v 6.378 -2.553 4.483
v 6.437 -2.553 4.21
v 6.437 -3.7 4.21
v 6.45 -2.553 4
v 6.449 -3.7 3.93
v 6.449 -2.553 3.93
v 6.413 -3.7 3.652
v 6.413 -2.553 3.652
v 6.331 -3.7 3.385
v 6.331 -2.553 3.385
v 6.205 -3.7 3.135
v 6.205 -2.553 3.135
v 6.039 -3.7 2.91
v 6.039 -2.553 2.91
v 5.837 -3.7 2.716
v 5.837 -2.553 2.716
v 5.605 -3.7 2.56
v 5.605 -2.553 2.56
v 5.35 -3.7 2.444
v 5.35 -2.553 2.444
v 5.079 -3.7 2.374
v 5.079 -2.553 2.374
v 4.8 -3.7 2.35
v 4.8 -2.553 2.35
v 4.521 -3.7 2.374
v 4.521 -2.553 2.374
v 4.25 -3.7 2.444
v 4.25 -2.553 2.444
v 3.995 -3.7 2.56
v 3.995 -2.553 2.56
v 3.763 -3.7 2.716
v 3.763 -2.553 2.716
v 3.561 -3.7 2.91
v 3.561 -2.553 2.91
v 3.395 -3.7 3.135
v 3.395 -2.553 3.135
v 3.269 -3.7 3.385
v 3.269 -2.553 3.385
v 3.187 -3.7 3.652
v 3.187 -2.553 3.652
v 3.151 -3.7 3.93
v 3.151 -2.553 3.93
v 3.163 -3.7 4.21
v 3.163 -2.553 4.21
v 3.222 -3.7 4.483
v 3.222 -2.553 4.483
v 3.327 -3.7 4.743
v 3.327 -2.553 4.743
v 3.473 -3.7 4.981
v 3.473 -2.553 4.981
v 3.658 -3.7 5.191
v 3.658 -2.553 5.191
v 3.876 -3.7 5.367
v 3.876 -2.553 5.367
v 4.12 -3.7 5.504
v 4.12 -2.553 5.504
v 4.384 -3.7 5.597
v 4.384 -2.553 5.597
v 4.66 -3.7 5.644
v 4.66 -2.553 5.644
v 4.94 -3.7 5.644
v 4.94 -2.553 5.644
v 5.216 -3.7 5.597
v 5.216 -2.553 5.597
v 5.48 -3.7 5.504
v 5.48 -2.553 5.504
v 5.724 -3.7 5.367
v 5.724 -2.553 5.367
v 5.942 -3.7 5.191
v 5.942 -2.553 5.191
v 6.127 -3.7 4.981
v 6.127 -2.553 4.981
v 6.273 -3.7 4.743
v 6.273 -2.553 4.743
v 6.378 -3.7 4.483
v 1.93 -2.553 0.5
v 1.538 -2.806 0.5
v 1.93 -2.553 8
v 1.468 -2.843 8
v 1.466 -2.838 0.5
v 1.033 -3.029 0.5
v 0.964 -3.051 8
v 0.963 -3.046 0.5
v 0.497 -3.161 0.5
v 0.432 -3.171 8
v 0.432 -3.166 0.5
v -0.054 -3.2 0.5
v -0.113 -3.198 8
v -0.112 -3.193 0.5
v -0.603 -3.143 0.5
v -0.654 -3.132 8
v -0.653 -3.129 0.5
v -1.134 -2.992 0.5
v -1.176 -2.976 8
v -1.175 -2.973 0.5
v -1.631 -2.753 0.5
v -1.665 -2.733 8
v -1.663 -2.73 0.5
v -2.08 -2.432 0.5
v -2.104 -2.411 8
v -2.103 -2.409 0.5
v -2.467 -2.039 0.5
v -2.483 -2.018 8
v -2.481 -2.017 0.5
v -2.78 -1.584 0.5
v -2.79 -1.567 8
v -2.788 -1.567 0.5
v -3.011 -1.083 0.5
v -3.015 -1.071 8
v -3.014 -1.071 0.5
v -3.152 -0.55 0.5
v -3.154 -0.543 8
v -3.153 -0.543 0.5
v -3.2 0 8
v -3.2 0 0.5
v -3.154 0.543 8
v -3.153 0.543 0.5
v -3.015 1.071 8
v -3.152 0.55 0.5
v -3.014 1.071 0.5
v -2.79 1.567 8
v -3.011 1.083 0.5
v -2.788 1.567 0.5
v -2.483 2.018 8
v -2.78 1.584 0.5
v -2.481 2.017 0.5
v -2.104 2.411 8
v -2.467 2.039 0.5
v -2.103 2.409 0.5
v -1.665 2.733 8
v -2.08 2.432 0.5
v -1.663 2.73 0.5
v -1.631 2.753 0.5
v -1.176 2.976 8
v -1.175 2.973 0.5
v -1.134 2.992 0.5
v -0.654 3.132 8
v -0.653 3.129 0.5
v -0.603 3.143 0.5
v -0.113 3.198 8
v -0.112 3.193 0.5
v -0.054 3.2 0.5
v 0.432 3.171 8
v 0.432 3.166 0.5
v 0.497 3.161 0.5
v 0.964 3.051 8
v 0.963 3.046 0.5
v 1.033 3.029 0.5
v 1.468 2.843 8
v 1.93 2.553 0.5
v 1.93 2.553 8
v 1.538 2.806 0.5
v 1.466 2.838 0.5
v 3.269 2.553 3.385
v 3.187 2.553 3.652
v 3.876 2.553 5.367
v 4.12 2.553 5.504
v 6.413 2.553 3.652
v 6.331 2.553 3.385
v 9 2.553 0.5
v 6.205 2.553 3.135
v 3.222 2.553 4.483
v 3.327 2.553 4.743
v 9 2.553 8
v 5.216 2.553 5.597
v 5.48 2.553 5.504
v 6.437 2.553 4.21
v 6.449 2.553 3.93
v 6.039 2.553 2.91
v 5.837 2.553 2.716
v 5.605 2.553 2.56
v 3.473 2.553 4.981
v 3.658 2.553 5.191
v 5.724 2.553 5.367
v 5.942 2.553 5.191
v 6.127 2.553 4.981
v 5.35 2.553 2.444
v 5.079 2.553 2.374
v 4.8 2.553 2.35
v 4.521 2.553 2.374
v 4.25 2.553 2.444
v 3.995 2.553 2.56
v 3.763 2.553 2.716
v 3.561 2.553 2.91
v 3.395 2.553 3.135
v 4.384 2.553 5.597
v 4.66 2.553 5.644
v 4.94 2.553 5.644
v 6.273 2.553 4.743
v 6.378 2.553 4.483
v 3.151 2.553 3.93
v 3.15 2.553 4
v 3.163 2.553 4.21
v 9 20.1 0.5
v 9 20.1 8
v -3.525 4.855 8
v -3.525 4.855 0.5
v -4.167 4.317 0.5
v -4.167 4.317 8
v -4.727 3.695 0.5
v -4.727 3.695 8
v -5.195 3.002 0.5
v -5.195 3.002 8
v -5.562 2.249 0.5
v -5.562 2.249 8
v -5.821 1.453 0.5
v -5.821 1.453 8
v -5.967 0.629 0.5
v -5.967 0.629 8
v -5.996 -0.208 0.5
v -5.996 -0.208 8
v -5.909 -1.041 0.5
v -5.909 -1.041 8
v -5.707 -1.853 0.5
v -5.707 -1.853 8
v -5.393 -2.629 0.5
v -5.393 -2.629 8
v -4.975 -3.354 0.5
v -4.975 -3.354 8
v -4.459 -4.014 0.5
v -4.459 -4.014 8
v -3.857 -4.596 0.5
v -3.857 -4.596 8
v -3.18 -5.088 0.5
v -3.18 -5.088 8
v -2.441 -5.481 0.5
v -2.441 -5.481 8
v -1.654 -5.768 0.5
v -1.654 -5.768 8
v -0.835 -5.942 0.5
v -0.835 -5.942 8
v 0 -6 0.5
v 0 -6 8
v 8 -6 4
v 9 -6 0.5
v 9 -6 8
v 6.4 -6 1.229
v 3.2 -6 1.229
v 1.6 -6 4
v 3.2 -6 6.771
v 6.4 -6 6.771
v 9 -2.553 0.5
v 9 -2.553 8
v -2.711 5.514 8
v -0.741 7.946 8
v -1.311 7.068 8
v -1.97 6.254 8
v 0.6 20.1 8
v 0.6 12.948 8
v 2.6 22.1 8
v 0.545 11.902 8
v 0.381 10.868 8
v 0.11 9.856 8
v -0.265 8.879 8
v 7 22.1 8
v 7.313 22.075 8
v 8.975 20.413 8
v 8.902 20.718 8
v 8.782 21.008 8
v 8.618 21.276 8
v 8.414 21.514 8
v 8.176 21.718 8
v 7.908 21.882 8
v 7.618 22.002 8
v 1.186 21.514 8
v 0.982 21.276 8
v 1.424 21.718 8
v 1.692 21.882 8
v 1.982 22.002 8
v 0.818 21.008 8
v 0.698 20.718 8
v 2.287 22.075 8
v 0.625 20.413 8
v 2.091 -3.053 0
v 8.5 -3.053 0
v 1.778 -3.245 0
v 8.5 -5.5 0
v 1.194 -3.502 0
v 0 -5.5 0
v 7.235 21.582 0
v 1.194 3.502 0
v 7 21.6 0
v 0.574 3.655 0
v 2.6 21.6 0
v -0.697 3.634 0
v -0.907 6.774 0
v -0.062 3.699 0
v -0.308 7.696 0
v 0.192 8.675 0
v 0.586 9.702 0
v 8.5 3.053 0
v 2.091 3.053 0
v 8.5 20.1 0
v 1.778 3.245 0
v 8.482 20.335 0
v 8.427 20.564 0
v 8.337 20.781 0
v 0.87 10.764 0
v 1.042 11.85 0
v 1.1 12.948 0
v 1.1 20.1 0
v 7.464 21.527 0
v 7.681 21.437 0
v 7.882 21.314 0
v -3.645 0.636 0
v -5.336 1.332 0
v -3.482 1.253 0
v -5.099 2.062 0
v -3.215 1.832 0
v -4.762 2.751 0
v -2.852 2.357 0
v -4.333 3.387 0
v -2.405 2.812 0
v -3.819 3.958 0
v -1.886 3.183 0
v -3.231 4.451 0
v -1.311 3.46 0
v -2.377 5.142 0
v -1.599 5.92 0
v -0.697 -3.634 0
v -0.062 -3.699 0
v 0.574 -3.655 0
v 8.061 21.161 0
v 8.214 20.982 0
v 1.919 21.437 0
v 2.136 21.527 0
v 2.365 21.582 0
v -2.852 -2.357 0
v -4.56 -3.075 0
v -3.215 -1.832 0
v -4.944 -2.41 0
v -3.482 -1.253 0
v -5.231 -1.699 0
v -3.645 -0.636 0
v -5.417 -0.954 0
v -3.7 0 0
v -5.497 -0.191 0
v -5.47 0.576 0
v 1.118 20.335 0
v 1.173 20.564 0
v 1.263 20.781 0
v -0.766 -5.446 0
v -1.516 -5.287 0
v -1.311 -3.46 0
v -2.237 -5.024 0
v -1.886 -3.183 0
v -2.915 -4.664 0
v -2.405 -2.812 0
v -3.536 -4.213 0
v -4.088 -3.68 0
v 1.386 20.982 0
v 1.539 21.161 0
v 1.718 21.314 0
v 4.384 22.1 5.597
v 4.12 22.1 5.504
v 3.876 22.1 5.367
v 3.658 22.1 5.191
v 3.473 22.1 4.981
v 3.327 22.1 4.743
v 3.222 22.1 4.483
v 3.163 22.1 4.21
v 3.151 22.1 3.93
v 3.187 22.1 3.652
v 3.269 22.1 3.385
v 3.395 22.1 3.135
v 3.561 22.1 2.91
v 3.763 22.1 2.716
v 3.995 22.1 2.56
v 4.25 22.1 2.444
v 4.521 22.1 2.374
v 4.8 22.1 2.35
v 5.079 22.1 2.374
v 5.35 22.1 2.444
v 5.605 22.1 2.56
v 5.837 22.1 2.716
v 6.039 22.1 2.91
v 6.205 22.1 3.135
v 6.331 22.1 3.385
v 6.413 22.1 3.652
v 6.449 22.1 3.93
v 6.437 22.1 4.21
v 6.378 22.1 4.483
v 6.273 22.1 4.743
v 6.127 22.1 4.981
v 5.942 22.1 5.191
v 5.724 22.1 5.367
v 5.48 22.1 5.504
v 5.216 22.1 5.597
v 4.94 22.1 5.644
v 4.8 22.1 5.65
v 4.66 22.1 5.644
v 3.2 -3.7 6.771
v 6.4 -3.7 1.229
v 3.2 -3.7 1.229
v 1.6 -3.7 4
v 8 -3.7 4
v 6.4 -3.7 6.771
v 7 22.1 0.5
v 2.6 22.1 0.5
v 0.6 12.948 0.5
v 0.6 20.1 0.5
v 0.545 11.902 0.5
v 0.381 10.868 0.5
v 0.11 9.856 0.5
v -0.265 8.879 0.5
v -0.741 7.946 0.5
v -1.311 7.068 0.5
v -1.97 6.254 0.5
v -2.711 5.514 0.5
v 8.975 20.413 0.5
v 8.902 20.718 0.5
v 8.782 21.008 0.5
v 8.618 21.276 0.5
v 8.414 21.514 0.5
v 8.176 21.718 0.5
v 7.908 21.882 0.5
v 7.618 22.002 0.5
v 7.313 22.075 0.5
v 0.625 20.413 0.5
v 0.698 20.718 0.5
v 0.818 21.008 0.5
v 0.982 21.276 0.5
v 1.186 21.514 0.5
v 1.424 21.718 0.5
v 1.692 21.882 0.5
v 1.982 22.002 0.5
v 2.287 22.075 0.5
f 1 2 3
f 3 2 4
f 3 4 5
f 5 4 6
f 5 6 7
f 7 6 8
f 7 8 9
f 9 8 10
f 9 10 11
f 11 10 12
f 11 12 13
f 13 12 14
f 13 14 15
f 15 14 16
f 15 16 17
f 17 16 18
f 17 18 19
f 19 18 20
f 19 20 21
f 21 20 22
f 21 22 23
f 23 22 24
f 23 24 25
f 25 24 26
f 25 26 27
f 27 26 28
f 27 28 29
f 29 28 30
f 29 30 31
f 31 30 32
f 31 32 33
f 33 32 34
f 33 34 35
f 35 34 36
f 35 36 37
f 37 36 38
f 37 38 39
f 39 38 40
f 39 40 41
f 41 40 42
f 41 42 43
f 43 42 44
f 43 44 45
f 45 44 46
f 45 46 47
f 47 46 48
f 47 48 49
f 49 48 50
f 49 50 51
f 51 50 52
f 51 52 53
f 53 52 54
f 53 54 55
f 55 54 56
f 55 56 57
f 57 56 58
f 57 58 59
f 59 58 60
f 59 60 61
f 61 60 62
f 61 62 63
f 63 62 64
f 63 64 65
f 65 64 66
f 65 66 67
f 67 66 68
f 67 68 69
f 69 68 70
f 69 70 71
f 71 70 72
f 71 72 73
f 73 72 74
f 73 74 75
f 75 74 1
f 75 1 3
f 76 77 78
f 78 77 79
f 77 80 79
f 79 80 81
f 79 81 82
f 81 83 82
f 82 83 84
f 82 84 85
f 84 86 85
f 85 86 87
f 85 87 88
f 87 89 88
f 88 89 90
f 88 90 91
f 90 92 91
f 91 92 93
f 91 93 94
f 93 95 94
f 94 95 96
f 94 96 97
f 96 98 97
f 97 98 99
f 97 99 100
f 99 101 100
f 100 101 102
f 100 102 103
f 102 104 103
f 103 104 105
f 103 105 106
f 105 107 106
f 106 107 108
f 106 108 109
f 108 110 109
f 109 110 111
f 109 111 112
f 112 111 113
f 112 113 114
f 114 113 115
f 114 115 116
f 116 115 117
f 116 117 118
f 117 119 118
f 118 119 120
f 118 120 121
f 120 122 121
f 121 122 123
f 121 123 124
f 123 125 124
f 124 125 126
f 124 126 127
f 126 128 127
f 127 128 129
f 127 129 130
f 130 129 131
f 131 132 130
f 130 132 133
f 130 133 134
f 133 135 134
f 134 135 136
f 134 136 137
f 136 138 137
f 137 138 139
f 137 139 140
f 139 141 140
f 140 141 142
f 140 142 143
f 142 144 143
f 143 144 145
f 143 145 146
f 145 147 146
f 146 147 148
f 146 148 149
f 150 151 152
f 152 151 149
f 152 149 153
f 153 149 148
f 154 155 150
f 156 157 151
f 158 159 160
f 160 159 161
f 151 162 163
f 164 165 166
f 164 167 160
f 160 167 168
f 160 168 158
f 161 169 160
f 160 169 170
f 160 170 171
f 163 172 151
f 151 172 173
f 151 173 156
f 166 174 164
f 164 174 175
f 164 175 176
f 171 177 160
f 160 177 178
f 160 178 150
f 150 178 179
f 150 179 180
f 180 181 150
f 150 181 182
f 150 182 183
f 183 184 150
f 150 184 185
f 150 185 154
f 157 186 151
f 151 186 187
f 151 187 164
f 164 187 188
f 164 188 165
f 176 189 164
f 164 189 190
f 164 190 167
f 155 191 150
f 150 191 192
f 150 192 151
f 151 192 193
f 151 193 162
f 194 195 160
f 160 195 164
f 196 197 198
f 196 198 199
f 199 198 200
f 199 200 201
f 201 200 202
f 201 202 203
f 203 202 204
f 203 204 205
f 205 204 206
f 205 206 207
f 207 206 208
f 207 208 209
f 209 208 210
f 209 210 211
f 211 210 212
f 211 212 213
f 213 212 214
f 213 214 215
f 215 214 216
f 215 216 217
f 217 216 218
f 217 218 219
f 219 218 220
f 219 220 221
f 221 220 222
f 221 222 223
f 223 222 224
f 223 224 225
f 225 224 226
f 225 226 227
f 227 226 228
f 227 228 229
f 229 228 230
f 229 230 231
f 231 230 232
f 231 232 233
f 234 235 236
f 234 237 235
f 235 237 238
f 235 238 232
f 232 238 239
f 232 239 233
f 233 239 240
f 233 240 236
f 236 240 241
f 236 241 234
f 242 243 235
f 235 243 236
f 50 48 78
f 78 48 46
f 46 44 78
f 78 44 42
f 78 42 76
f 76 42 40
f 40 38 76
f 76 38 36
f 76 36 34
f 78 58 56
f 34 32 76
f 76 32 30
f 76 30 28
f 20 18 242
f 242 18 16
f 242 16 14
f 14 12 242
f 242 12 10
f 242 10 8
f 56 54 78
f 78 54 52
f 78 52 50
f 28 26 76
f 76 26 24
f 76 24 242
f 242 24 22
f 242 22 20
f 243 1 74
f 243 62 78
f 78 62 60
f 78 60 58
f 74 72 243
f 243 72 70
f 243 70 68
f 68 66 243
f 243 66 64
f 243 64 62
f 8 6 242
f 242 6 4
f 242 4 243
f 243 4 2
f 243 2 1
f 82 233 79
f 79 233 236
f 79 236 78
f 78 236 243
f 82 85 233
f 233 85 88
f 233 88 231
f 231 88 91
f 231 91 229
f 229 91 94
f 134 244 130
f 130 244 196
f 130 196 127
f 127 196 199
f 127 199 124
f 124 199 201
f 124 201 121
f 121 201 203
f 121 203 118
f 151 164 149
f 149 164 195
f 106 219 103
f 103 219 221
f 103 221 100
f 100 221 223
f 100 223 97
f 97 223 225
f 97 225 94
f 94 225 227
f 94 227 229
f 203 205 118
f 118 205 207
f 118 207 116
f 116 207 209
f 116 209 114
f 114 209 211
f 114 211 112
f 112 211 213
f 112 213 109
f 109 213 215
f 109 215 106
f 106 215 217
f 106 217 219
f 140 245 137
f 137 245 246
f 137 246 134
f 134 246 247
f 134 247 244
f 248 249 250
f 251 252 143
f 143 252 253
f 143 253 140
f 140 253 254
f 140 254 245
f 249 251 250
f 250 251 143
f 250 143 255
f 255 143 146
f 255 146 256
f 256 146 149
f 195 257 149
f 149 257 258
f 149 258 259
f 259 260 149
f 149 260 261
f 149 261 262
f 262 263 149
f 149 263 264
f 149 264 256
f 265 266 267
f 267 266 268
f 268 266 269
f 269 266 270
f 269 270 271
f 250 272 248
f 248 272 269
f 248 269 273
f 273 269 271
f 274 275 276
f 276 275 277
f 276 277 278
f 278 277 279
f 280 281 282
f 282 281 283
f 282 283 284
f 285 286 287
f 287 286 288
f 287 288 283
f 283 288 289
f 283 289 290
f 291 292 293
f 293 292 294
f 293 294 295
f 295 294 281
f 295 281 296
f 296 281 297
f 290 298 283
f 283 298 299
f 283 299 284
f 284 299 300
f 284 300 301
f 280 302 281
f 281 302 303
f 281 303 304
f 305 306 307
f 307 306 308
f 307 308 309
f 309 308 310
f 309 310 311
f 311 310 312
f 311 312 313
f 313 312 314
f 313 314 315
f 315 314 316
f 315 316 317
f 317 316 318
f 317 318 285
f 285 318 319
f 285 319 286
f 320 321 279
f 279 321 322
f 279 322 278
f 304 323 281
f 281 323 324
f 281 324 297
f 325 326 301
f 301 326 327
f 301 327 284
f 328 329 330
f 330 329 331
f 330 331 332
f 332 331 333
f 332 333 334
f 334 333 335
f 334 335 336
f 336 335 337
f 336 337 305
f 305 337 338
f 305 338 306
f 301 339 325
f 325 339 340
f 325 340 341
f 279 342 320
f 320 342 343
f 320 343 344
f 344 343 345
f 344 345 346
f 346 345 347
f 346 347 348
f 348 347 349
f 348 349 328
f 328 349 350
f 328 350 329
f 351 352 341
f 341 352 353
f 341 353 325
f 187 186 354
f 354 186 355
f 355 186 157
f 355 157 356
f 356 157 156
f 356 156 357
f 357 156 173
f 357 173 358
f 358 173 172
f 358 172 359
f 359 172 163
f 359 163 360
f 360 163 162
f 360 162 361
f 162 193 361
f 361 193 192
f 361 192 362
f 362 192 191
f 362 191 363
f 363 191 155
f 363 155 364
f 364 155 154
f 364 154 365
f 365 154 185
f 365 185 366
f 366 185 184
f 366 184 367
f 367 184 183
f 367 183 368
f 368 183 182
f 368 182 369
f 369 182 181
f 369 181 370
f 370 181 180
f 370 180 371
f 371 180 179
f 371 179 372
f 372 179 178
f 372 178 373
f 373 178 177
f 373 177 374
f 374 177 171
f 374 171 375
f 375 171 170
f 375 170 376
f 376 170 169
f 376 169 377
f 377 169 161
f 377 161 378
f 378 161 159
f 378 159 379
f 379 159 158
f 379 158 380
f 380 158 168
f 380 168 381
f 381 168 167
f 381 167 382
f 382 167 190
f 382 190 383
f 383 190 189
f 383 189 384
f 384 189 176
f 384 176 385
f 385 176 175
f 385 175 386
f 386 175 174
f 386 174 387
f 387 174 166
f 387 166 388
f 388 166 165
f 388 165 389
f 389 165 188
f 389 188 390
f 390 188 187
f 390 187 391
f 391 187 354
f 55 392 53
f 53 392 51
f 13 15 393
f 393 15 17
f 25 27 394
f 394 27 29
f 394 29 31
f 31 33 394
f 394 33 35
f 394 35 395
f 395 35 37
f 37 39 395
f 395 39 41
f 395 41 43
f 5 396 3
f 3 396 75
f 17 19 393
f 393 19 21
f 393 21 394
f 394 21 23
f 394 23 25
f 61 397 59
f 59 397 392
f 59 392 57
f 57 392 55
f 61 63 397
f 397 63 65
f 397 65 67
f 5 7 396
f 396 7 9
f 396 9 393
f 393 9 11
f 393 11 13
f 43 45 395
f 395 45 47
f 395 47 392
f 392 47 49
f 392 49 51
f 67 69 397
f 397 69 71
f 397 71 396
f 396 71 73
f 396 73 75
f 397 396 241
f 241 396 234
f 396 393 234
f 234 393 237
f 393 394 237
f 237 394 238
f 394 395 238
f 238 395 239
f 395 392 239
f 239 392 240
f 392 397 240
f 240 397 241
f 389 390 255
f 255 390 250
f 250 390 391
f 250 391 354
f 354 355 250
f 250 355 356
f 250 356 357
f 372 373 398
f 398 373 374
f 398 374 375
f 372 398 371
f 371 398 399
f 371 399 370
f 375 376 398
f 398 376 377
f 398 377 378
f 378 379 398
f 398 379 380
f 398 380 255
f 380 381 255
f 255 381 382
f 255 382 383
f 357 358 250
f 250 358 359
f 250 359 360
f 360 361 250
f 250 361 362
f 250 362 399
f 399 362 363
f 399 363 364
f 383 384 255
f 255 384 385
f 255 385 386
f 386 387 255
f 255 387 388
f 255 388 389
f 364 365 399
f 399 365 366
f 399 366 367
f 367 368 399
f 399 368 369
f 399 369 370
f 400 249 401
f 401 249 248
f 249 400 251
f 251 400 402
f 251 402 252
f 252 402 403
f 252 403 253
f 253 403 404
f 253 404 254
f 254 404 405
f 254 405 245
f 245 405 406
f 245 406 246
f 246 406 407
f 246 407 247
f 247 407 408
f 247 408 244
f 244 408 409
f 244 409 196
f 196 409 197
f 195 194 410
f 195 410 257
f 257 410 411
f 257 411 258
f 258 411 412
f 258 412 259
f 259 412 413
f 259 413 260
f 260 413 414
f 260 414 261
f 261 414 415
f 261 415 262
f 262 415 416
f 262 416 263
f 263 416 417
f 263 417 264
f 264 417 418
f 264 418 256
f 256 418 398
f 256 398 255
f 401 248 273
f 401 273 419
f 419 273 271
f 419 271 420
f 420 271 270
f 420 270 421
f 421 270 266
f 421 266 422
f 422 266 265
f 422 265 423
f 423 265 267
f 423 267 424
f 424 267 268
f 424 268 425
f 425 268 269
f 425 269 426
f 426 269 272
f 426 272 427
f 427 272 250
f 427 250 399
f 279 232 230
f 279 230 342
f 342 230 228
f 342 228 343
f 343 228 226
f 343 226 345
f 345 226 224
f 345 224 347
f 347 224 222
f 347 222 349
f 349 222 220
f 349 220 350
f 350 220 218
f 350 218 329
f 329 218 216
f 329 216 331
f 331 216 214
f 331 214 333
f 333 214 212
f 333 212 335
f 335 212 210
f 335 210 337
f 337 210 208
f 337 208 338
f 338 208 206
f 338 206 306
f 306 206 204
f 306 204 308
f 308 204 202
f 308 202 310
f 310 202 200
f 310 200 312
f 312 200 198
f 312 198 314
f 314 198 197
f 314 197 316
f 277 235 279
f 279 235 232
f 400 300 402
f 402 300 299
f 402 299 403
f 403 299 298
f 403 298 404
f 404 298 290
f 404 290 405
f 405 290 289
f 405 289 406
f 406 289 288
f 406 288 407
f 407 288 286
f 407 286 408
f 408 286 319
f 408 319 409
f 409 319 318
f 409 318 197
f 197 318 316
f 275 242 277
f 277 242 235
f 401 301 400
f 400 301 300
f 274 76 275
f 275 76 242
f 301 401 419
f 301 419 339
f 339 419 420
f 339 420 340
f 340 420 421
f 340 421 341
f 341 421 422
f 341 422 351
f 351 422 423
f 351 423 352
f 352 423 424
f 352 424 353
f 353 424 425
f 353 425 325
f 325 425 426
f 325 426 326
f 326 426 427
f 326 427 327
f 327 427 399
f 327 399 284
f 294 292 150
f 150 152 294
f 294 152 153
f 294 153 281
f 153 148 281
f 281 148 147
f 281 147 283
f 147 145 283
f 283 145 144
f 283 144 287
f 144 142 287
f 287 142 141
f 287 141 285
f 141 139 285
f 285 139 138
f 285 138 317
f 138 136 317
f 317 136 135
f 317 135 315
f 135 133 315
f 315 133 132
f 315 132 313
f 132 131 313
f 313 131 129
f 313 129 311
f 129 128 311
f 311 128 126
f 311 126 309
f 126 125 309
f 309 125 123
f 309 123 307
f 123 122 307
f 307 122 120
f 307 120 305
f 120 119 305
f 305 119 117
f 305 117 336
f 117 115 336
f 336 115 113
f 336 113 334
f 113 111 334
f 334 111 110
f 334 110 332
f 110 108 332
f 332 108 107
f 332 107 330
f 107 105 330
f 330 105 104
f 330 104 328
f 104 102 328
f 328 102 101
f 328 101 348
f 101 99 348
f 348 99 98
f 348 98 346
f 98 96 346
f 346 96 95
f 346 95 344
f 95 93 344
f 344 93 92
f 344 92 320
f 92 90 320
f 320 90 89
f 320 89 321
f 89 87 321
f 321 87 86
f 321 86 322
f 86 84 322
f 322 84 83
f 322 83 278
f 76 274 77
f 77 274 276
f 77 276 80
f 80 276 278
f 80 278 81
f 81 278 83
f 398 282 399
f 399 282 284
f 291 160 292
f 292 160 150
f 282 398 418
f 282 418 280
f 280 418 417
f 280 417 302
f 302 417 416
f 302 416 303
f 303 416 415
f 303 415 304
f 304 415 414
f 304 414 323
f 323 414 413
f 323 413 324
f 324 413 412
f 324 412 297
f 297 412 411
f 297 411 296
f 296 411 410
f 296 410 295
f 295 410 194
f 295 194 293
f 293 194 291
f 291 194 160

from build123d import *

# Parameters (mm, degrees)
BOSS_EXTRUDE1_DEPTH = 8
SKETCH2_R           = 1.65
CUT_EXTRUDE1_DEPTH  = 18
CUT_EXTRUDE2_DEPTH  = 2.3
SKETCH5_W           = 8.4
SKETCH5_H           = 8
SKETCH5_R           = 1.65
BOSS_EXTRUDE2_DEPTH = 16.1
FILLET1_R           = 10
FILLET2_R           = 2
CHAMFER1_SIZE       = 0.5


with BuildPart() as part:
    # Sketch1 → Boss-Extrude1 (new body)
    with BuildSketch(Plane.XY):
        with BuildLine():
            Line((0, 6), (9, 6))
            Line((9, 6), (9, 2.552710574))
            Line((9, 2.552710574), (1.929680991, 2.552710574))
            ThreePointArc((1.929680991, 2.552710574), (-3.2, 0), (1.929680991, -2.552710574))
            Line((1.929680991, -2.552710574), (9, -2.552710574))
            Line((9, -2.552710574), (9, -6))
            Line((9, -6), (0, -6))
            ThreePointArc((0, -6), (-6, 0), (0, 6))
        make_face()
    extrude(amount=BOSS_EXTRUDE1_DEPTH)

    # Sketch2 → Cut-Extrude1 (cut, through all)
    with BuildSketch(Plane.XZ.offset(6)):
        with Locations(Location((4.8, 4, 0), (0, 0, 270))):
            Circle(SKETCH2_R)
    extrude(amount=-CUT_EXTRUDE1_DEPTH, mode=Mode.SUBTRACT)

    # Sketch3 → Cut-Extrude2 (cut)
    with BuildSketch(Plane.XZ.offset(6)):
        Polygon((6.4, 6.771281292), (3.2, 6.771281292), (1.6, 4), (3.2, 1.228718708), (6.4, 1.228718708), (8, 4), align=None)
    extrude(amount=-CUT_EXTRUDE2_DEPTH, mode=Mode.SUBTRACT)

    # Sketch5 → Boss-Extrude2 (add)
    with BuildSketch(Plane(origin=(0, 6, 0), x_dir=(1, 0, 0), z_dir=(0, 1, 0))):
        with Locations((4.8, -4)):
            Rectangle(SKETCH5_W, SKETCH5_H)
        with Locations(Location((4.8, -4, 0), (0, 0, 90))):
            Circle(SKETCH5_R, mode=Mode.SUBTRACT)
    extrude(amount=BOSS_EXTRUDE2_DEPTH)

    # Fillet1
    fillet1_edges = [part.edges().sort_by_distance(p)[0] for p in [
        (0.6, 6, 4),
    ]]
    fillet(fillet1_edges, radius=FILLET1_R)

    # Fillet2
    fillet2_edges = [part.edges().sort_by_distance(p)[0] for p in [
        (9, 22.1, 4),
        (0.6, 22.1, 4),
    ]]
    fillet(fillet2_edges, radius=FILLET2_R)

    # Chamfer1
    chamfer1_edges = [part.edges().sort_by_distance(p)[0] for p in [
        (5.464840496, 2.552710574, 0),
        (-3.2, 0, 0),
        (-5.706665837, -1.853096064, 0),
        (-0.490735159, 8.406111117, 0),
        (4.8, 22.1, 0),
        (5.464840496, -2.552710574, 0),
        (0.6, 16.523793324, 0),
        (1.185786438, 21.514213562, 0),
        (8.414213562, 21.514213562, 0),
        (9, -4.276355287, 0),
        (4.5, -6, 0),
        (9, 11.326355287, 0),
    ]]
    chamfer(chamfer1_edges, length=CHAMFER1_SIZE)


solid = part.part
